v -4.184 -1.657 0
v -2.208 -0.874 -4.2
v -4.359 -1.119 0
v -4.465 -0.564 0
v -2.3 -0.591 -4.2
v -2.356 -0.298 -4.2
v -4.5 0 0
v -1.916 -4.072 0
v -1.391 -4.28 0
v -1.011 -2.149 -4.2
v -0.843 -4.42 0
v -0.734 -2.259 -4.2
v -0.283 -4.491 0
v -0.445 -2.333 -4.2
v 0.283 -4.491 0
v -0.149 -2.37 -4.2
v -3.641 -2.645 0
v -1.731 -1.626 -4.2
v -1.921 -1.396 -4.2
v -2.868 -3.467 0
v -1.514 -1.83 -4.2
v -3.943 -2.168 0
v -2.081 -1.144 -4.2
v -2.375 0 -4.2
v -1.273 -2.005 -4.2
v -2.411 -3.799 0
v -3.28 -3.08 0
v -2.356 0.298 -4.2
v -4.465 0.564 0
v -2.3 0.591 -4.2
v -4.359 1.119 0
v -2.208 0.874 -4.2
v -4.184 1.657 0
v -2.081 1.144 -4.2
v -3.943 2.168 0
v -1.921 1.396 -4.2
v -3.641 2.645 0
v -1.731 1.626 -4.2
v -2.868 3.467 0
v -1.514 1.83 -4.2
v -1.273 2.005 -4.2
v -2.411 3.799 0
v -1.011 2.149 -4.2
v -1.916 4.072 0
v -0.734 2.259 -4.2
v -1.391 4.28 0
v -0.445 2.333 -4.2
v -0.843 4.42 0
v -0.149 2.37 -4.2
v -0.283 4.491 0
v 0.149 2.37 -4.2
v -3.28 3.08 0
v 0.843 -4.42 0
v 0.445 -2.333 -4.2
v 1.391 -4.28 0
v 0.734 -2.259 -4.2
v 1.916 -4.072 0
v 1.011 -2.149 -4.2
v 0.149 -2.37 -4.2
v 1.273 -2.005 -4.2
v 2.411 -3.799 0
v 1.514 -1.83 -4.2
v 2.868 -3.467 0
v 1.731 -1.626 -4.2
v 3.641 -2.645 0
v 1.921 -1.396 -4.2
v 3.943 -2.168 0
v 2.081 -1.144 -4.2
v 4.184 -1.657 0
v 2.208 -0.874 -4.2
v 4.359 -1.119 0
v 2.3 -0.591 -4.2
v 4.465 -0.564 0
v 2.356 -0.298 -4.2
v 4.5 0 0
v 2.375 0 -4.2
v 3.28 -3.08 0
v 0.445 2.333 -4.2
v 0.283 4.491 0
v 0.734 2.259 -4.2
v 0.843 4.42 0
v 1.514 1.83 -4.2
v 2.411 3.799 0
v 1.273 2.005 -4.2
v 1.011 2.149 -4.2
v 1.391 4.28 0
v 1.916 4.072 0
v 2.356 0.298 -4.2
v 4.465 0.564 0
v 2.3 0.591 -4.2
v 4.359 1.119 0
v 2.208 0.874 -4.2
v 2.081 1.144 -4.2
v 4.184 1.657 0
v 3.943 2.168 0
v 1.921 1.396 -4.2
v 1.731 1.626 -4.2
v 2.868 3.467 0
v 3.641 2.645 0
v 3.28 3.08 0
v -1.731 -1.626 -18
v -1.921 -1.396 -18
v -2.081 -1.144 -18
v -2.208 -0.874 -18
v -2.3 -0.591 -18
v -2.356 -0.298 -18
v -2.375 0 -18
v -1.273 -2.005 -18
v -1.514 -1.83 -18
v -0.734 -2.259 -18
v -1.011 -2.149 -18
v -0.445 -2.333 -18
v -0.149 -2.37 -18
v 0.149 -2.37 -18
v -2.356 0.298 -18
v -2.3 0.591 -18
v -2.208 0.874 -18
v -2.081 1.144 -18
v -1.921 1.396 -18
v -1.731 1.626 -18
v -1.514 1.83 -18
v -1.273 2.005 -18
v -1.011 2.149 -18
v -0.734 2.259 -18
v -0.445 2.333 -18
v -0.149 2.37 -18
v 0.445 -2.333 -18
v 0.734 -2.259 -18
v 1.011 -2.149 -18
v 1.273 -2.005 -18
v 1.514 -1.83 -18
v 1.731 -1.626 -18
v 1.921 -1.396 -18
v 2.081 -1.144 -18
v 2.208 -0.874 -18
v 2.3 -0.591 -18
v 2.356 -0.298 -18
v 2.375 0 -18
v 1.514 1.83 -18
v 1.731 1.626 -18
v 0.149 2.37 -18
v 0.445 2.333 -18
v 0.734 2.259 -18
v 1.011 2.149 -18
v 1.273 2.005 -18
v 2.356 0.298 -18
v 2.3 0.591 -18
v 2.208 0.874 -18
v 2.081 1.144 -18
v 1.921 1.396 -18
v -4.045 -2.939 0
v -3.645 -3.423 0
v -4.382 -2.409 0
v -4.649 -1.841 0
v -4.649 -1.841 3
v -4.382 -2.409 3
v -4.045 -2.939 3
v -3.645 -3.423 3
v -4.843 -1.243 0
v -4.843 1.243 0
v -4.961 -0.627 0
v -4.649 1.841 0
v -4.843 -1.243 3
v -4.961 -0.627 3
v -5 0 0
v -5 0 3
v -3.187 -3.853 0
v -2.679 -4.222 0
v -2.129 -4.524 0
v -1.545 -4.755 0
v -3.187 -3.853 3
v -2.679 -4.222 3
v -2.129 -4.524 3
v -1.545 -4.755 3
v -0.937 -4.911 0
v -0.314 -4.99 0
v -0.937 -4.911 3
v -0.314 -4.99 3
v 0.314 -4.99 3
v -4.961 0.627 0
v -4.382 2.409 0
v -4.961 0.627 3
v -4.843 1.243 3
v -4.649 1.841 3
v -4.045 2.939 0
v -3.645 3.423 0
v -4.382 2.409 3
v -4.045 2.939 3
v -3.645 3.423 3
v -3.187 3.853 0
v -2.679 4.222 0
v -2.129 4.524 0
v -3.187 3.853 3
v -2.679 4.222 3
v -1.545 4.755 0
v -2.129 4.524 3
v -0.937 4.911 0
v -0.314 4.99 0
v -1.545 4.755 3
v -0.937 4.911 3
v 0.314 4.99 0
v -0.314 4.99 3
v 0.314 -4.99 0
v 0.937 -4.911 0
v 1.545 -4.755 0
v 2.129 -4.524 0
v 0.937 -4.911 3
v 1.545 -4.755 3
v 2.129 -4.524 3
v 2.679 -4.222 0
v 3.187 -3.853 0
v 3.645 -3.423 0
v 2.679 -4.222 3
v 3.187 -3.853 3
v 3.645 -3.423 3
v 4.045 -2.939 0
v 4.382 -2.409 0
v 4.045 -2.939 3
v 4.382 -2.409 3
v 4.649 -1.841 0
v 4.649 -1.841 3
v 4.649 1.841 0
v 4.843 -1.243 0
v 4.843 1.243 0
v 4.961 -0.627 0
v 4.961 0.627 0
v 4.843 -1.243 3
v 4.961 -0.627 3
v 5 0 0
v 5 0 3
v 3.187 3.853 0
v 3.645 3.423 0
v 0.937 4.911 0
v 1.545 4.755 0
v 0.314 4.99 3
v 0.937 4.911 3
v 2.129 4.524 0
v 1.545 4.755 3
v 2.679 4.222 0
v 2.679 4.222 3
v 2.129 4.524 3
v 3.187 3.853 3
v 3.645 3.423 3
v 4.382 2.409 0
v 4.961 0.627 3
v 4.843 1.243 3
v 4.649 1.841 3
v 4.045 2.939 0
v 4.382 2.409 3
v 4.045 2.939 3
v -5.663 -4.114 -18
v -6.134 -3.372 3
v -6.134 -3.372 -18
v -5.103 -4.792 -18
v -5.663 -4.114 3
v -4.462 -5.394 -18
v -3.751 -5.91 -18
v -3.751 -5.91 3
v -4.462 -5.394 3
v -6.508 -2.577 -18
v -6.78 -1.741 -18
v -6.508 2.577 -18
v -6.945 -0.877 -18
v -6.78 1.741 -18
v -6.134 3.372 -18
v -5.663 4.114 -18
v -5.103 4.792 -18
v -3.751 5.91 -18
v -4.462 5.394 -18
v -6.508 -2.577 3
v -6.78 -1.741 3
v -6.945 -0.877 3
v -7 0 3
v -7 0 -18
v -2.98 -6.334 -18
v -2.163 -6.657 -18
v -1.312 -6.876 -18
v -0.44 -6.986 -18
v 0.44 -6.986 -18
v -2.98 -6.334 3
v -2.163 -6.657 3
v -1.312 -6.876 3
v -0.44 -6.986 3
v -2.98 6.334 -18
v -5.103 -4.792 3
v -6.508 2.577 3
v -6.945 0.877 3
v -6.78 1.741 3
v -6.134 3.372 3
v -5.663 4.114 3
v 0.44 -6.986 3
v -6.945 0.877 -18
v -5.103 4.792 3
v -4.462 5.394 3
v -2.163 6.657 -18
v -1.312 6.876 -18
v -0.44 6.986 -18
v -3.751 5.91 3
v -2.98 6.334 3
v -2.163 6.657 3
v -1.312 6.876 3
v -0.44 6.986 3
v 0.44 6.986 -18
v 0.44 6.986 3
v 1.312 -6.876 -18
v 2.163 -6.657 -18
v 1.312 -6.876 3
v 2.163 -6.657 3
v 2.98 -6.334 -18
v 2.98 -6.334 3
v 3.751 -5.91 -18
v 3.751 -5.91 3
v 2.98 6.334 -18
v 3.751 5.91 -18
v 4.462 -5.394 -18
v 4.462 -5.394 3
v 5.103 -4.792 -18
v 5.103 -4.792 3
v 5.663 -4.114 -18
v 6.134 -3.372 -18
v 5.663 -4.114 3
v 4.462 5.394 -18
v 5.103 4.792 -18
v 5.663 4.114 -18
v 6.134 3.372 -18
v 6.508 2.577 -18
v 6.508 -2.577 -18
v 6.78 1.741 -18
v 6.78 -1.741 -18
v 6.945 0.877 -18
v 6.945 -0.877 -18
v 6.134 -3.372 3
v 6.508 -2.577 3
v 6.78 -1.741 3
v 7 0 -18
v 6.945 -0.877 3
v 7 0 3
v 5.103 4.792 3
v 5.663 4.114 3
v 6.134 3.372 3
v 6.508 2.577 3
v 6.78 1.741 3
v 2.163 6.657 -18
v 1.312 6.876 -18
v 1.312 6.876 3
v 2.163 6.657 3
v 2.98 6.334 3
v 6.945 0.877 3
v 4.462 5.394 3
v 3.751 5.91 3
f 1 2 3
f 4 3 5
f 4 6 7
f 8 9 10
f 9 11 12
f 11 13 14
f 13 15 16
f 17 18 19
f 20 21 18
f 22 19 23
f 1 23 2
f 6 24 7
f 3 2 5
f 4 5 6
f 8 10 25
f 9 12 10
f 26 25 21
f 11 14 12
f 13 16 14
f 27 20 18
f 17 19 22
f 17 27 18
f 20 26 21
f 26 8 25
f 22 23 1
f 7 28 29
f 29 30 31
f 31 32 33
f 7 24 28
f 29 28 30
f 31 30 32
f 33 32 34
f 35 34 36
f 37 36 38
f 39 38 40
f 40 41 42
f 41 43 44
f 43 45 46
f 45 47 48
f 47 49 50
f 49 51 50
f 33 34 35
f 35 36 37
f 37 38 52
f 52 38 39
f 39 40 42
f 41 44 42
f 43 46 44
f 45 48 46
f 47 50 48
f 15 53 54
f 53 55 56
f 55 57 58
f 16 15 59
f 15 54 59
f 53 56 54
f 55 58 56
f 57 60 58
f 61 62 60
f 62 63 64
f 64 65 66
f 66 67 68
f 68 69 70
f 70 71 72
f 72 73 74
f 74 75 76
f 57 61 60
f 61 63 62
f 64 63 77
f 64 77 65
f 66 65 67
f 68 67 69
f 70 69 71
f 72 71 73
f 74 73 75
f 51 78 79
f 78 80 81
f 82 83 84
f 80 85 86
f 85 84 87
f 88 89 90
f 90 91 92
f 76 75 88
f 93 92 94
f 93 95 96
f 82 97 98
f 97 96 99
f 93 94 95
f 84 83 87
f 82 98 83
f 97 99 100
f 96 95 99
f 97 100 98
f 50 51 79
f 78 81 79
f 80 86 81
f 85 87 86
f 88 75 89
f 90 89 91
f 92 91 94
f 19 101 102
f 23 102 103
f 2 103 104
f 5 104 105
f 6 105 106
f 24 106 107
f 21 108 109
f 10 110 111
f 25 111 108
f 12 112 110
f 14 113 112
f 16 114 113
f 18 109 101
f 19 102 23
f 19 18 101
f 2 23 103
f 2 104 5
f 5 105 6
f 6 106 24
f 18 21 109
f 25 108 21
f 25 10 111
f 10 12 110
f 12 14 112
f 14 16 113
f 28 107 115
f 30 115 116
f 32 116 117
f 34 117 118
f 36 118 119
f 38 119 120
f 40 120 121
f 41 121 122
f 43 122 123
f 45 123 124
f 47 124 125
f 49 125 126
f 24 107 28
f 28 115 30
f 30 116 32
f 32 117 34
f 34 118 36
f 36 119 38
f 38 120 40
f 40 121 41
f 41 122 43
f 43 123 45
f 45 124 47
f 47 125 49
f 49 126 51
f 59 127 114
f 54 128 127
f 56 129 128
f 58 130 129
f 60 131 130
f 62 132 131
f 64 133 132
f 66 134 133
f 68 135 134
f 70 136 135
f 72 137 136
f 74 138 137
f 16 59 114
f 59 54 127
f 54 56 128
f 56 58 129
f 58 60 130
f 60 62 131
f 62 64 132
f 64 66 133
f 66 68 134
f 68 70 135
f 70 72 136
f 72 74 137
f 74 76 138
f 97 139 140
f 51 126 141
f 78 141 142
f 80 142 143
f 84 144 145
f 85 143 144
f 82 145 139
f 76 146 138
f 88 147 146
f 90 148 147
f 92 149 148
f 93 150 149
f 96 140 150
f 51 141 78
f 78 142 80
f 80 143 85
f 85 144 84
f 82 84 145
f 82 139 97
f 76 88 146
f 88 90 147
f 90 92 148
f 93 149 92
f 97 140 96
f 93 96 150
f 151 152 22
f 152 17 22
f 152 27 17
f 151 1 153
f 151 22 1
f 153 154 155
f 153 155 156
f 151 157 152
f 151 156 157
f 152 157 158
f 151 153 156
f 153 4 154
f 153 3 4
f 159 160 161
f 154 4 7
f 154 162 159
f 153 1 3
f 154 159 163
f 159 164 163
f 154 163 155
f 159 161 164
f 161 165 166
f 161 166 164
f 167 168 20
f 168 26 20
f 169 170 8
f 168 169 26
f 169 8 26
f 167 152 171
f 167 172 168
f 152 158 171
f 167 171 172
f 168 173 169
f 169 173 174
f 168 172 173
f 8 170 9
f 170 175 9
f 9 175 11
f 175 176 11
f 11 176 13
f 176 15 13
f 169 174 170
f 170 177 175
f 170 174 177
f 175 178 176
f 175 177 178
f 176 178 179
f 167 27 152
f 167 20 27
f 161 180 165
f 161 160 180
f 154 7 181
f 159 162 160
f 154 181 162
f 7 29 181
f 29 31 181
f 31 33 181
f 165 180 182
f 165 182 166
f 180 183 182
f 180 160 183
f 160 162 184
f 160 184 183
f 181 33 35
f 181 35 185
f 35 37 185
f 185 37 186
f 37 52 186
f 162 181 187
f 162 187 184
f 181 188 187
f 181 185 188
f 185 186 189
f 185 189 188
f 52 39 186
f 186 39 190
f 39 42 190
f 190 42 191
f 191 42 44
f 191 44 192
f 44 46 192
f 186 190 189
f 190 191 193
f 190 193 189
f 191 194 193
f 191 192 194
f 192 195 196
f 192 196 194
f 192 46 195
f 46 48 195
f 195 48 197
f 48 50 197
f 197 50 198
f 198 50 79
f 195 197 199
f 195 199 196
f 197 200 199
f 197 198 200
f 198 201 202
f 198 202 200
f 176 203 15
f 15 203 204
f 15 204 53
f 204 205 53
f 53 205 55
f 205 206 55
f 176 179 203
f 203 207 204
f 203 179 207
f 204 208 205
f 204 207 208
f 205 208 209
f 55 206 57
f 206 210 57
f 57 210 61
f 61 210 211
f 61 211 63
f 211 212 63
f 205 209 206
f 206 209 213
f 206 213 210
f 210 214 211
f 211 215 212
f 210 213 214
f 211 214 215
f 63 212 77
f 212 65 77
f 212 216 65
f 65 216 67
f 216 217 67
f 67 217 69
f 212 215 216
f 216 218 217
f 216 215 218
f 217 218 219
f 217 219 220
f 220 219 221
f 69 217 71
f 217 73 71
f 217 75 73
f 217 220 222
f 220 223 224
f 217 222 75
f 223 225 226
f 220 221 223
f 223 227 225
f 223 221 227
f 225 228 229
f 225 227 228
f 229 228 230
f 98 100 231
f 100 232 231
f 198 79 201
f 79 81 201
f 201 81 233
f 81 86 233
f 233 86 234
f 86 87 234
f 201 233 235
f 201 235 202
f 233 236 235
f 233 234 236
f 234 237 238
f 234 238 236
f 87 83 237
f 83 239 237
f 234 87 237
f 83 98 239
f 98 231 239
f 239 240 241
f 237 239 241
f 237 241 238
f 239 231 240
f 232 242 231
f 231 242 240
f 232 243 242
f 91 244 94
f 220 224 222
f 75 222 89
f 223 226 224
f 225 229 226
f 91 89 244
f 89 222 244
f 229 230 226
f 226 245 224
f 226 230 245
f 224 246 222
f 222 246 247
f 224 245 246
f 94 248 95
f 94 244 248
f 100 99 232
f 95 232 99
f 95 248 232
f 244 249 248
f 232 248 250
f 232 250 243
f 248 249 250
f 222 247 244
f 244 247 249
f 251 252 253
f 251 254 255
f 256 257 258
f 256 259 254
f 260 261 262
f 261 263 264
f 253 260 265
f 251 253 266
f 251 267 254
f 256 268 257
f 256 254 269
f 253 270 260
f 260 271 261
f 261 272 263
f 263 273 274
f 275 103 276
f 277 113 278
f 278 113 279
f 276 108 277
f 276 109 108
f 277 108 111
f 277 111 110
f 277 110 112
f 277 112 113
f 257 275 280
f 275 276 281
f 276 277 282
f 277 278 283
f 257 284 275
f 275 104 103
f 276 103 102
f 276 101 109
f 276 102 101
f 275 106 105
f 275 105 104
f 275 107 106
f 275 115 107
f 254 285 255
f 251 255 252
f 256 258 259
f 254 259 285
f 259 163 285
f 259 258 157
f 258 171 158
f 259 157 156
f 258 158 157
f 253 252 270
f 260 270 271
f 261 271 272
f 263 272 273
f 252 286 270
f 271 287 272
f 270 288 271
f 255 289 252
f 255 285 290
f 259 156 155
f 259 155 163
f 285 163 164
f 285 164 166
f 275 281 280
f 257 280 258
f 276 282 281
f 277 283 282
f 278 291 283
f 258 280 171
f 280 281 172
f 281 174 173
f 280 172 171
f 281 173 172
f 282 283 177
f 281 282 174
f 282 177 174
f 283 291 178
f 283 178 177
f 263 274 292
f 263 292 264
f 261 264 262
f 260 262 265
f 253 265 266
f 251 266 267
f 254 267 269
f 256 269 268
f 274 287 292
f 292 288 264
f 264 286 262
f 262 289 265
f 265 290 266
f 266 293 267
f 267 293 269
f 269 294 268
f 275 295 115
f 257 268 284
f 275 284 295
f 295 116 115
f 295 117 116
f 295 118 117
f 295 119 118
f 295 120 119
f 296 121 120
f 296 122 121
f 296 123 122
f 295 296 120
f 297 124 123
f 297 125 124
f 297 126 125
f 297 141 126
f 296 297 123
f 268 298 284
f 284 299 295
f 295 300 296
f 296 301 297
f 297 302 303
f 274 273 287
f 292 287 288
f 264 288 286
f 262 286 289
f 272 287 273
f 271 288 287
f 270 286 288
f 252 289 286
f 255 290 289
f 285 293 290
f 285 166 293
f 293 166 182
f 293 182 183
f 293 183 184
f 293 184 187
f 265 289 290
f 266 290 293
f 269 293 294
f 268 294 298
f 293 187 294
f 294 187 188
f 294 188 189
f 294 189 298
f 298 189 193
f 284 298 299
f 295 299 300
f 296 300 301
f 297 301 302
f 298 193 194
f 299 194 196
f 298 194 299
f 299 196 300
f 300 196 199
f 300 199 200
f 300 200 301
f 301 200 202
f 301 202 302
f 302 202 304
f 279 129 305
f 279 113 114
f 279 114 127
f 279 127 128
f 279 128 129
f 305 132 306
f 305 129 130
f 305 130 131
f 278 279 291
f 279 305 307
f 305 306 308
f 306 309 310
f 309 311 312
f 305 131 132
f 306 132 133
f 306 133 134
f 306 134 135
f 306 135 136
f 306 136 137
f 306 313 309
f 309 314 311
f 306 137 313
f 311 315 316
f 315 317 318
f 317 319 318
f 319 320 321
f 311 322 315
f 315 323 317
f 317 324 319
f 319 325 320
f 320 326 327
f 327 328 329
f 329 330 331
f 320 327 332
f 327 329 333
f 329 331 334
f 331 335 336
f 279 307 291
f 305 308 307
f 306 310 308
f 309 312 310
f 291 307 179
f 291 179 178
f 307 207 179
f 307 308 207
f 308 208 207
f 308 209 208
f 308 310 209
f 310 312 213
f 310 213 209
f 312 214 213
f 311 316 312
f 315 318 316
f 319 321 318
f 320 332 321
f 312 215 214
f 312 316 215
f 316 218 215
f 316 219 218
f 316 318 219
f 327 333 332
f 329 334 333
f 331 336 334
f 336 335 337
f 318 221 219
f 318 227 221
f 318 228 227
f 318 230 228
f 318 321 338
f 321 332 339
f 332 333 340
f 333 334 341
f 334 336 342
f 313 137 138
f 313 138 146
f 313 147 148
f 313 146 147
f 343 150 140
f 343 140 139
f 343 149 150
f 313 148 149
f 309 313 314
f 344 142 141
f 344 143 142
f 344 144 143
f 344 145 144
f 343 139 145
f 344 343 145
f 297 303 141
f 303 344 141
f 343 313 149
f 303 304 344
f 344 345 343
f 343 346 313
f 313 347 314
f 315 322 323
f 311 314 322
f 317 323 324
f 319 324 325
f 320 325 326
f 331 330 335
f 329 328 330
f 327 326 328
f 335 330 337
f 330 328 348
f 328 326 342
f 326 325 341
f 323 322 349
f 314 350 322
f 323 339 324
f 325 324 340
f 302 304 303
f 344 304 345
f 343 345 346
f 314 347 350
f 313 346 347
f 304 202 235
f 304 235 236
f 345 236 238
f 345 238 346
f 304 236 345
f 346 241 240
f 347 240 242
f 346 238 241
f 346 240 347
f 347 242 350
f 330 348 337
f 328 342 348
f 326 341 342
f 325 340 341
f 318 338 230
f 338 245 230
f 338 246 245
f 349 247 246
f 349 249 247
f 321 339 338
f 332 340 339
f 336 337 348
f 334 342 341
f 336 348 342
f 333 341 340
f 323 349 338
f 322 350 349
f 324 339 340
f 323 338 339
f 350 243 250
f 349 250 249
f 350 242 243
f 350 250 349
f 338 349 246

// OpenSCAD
$fn = 50;


difference() {
	union() {
		translate(v = [0, 0, -18.0000000000]) {
			cylinder(h = 21, r = 7.0000000000);
		}
	}
	union() {
		translate(v = [0, 0, 0]) {
			rotate(a = [0, 0, 0]) {
				difference() {
					union() {
						translate(v = [0, 0, -21.0000000000]) {
							cylinder(h = 21, r = 2.2500000000);
						}
						translate(v = [0, 0, -4.2000000000]) {
							cylinder(h = 4.2000000000, r1 = 2.3750000000, r2 = 4.5000000000);
						}
						translate(v = [0, 0, -21.0000000000]) {
							cylinder(h = 21, r = 2.3750000000);
						}
						translate(v = [0, 0, -21.0000000000]) {
							cylinder(h = 21, r = 2.2500000000);
						}
					}
					union();
				}
			}
		}
		#cylinder(h = 3, r = 5.0000000000);
	}
}
